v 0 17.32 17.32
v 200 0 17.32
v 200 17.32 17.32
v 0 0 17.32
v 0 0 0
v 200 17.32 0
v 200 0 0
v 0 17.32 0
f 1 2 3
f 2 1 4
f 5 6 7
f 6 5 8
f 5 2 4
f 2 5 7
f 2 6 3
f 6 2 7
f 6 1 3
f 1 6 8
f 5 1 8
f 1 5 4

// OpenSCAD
length = 200;
width = 17.32;
height = 17.32;

// translate([0, -width/2, 0])
cube([ length, width, height ]);
